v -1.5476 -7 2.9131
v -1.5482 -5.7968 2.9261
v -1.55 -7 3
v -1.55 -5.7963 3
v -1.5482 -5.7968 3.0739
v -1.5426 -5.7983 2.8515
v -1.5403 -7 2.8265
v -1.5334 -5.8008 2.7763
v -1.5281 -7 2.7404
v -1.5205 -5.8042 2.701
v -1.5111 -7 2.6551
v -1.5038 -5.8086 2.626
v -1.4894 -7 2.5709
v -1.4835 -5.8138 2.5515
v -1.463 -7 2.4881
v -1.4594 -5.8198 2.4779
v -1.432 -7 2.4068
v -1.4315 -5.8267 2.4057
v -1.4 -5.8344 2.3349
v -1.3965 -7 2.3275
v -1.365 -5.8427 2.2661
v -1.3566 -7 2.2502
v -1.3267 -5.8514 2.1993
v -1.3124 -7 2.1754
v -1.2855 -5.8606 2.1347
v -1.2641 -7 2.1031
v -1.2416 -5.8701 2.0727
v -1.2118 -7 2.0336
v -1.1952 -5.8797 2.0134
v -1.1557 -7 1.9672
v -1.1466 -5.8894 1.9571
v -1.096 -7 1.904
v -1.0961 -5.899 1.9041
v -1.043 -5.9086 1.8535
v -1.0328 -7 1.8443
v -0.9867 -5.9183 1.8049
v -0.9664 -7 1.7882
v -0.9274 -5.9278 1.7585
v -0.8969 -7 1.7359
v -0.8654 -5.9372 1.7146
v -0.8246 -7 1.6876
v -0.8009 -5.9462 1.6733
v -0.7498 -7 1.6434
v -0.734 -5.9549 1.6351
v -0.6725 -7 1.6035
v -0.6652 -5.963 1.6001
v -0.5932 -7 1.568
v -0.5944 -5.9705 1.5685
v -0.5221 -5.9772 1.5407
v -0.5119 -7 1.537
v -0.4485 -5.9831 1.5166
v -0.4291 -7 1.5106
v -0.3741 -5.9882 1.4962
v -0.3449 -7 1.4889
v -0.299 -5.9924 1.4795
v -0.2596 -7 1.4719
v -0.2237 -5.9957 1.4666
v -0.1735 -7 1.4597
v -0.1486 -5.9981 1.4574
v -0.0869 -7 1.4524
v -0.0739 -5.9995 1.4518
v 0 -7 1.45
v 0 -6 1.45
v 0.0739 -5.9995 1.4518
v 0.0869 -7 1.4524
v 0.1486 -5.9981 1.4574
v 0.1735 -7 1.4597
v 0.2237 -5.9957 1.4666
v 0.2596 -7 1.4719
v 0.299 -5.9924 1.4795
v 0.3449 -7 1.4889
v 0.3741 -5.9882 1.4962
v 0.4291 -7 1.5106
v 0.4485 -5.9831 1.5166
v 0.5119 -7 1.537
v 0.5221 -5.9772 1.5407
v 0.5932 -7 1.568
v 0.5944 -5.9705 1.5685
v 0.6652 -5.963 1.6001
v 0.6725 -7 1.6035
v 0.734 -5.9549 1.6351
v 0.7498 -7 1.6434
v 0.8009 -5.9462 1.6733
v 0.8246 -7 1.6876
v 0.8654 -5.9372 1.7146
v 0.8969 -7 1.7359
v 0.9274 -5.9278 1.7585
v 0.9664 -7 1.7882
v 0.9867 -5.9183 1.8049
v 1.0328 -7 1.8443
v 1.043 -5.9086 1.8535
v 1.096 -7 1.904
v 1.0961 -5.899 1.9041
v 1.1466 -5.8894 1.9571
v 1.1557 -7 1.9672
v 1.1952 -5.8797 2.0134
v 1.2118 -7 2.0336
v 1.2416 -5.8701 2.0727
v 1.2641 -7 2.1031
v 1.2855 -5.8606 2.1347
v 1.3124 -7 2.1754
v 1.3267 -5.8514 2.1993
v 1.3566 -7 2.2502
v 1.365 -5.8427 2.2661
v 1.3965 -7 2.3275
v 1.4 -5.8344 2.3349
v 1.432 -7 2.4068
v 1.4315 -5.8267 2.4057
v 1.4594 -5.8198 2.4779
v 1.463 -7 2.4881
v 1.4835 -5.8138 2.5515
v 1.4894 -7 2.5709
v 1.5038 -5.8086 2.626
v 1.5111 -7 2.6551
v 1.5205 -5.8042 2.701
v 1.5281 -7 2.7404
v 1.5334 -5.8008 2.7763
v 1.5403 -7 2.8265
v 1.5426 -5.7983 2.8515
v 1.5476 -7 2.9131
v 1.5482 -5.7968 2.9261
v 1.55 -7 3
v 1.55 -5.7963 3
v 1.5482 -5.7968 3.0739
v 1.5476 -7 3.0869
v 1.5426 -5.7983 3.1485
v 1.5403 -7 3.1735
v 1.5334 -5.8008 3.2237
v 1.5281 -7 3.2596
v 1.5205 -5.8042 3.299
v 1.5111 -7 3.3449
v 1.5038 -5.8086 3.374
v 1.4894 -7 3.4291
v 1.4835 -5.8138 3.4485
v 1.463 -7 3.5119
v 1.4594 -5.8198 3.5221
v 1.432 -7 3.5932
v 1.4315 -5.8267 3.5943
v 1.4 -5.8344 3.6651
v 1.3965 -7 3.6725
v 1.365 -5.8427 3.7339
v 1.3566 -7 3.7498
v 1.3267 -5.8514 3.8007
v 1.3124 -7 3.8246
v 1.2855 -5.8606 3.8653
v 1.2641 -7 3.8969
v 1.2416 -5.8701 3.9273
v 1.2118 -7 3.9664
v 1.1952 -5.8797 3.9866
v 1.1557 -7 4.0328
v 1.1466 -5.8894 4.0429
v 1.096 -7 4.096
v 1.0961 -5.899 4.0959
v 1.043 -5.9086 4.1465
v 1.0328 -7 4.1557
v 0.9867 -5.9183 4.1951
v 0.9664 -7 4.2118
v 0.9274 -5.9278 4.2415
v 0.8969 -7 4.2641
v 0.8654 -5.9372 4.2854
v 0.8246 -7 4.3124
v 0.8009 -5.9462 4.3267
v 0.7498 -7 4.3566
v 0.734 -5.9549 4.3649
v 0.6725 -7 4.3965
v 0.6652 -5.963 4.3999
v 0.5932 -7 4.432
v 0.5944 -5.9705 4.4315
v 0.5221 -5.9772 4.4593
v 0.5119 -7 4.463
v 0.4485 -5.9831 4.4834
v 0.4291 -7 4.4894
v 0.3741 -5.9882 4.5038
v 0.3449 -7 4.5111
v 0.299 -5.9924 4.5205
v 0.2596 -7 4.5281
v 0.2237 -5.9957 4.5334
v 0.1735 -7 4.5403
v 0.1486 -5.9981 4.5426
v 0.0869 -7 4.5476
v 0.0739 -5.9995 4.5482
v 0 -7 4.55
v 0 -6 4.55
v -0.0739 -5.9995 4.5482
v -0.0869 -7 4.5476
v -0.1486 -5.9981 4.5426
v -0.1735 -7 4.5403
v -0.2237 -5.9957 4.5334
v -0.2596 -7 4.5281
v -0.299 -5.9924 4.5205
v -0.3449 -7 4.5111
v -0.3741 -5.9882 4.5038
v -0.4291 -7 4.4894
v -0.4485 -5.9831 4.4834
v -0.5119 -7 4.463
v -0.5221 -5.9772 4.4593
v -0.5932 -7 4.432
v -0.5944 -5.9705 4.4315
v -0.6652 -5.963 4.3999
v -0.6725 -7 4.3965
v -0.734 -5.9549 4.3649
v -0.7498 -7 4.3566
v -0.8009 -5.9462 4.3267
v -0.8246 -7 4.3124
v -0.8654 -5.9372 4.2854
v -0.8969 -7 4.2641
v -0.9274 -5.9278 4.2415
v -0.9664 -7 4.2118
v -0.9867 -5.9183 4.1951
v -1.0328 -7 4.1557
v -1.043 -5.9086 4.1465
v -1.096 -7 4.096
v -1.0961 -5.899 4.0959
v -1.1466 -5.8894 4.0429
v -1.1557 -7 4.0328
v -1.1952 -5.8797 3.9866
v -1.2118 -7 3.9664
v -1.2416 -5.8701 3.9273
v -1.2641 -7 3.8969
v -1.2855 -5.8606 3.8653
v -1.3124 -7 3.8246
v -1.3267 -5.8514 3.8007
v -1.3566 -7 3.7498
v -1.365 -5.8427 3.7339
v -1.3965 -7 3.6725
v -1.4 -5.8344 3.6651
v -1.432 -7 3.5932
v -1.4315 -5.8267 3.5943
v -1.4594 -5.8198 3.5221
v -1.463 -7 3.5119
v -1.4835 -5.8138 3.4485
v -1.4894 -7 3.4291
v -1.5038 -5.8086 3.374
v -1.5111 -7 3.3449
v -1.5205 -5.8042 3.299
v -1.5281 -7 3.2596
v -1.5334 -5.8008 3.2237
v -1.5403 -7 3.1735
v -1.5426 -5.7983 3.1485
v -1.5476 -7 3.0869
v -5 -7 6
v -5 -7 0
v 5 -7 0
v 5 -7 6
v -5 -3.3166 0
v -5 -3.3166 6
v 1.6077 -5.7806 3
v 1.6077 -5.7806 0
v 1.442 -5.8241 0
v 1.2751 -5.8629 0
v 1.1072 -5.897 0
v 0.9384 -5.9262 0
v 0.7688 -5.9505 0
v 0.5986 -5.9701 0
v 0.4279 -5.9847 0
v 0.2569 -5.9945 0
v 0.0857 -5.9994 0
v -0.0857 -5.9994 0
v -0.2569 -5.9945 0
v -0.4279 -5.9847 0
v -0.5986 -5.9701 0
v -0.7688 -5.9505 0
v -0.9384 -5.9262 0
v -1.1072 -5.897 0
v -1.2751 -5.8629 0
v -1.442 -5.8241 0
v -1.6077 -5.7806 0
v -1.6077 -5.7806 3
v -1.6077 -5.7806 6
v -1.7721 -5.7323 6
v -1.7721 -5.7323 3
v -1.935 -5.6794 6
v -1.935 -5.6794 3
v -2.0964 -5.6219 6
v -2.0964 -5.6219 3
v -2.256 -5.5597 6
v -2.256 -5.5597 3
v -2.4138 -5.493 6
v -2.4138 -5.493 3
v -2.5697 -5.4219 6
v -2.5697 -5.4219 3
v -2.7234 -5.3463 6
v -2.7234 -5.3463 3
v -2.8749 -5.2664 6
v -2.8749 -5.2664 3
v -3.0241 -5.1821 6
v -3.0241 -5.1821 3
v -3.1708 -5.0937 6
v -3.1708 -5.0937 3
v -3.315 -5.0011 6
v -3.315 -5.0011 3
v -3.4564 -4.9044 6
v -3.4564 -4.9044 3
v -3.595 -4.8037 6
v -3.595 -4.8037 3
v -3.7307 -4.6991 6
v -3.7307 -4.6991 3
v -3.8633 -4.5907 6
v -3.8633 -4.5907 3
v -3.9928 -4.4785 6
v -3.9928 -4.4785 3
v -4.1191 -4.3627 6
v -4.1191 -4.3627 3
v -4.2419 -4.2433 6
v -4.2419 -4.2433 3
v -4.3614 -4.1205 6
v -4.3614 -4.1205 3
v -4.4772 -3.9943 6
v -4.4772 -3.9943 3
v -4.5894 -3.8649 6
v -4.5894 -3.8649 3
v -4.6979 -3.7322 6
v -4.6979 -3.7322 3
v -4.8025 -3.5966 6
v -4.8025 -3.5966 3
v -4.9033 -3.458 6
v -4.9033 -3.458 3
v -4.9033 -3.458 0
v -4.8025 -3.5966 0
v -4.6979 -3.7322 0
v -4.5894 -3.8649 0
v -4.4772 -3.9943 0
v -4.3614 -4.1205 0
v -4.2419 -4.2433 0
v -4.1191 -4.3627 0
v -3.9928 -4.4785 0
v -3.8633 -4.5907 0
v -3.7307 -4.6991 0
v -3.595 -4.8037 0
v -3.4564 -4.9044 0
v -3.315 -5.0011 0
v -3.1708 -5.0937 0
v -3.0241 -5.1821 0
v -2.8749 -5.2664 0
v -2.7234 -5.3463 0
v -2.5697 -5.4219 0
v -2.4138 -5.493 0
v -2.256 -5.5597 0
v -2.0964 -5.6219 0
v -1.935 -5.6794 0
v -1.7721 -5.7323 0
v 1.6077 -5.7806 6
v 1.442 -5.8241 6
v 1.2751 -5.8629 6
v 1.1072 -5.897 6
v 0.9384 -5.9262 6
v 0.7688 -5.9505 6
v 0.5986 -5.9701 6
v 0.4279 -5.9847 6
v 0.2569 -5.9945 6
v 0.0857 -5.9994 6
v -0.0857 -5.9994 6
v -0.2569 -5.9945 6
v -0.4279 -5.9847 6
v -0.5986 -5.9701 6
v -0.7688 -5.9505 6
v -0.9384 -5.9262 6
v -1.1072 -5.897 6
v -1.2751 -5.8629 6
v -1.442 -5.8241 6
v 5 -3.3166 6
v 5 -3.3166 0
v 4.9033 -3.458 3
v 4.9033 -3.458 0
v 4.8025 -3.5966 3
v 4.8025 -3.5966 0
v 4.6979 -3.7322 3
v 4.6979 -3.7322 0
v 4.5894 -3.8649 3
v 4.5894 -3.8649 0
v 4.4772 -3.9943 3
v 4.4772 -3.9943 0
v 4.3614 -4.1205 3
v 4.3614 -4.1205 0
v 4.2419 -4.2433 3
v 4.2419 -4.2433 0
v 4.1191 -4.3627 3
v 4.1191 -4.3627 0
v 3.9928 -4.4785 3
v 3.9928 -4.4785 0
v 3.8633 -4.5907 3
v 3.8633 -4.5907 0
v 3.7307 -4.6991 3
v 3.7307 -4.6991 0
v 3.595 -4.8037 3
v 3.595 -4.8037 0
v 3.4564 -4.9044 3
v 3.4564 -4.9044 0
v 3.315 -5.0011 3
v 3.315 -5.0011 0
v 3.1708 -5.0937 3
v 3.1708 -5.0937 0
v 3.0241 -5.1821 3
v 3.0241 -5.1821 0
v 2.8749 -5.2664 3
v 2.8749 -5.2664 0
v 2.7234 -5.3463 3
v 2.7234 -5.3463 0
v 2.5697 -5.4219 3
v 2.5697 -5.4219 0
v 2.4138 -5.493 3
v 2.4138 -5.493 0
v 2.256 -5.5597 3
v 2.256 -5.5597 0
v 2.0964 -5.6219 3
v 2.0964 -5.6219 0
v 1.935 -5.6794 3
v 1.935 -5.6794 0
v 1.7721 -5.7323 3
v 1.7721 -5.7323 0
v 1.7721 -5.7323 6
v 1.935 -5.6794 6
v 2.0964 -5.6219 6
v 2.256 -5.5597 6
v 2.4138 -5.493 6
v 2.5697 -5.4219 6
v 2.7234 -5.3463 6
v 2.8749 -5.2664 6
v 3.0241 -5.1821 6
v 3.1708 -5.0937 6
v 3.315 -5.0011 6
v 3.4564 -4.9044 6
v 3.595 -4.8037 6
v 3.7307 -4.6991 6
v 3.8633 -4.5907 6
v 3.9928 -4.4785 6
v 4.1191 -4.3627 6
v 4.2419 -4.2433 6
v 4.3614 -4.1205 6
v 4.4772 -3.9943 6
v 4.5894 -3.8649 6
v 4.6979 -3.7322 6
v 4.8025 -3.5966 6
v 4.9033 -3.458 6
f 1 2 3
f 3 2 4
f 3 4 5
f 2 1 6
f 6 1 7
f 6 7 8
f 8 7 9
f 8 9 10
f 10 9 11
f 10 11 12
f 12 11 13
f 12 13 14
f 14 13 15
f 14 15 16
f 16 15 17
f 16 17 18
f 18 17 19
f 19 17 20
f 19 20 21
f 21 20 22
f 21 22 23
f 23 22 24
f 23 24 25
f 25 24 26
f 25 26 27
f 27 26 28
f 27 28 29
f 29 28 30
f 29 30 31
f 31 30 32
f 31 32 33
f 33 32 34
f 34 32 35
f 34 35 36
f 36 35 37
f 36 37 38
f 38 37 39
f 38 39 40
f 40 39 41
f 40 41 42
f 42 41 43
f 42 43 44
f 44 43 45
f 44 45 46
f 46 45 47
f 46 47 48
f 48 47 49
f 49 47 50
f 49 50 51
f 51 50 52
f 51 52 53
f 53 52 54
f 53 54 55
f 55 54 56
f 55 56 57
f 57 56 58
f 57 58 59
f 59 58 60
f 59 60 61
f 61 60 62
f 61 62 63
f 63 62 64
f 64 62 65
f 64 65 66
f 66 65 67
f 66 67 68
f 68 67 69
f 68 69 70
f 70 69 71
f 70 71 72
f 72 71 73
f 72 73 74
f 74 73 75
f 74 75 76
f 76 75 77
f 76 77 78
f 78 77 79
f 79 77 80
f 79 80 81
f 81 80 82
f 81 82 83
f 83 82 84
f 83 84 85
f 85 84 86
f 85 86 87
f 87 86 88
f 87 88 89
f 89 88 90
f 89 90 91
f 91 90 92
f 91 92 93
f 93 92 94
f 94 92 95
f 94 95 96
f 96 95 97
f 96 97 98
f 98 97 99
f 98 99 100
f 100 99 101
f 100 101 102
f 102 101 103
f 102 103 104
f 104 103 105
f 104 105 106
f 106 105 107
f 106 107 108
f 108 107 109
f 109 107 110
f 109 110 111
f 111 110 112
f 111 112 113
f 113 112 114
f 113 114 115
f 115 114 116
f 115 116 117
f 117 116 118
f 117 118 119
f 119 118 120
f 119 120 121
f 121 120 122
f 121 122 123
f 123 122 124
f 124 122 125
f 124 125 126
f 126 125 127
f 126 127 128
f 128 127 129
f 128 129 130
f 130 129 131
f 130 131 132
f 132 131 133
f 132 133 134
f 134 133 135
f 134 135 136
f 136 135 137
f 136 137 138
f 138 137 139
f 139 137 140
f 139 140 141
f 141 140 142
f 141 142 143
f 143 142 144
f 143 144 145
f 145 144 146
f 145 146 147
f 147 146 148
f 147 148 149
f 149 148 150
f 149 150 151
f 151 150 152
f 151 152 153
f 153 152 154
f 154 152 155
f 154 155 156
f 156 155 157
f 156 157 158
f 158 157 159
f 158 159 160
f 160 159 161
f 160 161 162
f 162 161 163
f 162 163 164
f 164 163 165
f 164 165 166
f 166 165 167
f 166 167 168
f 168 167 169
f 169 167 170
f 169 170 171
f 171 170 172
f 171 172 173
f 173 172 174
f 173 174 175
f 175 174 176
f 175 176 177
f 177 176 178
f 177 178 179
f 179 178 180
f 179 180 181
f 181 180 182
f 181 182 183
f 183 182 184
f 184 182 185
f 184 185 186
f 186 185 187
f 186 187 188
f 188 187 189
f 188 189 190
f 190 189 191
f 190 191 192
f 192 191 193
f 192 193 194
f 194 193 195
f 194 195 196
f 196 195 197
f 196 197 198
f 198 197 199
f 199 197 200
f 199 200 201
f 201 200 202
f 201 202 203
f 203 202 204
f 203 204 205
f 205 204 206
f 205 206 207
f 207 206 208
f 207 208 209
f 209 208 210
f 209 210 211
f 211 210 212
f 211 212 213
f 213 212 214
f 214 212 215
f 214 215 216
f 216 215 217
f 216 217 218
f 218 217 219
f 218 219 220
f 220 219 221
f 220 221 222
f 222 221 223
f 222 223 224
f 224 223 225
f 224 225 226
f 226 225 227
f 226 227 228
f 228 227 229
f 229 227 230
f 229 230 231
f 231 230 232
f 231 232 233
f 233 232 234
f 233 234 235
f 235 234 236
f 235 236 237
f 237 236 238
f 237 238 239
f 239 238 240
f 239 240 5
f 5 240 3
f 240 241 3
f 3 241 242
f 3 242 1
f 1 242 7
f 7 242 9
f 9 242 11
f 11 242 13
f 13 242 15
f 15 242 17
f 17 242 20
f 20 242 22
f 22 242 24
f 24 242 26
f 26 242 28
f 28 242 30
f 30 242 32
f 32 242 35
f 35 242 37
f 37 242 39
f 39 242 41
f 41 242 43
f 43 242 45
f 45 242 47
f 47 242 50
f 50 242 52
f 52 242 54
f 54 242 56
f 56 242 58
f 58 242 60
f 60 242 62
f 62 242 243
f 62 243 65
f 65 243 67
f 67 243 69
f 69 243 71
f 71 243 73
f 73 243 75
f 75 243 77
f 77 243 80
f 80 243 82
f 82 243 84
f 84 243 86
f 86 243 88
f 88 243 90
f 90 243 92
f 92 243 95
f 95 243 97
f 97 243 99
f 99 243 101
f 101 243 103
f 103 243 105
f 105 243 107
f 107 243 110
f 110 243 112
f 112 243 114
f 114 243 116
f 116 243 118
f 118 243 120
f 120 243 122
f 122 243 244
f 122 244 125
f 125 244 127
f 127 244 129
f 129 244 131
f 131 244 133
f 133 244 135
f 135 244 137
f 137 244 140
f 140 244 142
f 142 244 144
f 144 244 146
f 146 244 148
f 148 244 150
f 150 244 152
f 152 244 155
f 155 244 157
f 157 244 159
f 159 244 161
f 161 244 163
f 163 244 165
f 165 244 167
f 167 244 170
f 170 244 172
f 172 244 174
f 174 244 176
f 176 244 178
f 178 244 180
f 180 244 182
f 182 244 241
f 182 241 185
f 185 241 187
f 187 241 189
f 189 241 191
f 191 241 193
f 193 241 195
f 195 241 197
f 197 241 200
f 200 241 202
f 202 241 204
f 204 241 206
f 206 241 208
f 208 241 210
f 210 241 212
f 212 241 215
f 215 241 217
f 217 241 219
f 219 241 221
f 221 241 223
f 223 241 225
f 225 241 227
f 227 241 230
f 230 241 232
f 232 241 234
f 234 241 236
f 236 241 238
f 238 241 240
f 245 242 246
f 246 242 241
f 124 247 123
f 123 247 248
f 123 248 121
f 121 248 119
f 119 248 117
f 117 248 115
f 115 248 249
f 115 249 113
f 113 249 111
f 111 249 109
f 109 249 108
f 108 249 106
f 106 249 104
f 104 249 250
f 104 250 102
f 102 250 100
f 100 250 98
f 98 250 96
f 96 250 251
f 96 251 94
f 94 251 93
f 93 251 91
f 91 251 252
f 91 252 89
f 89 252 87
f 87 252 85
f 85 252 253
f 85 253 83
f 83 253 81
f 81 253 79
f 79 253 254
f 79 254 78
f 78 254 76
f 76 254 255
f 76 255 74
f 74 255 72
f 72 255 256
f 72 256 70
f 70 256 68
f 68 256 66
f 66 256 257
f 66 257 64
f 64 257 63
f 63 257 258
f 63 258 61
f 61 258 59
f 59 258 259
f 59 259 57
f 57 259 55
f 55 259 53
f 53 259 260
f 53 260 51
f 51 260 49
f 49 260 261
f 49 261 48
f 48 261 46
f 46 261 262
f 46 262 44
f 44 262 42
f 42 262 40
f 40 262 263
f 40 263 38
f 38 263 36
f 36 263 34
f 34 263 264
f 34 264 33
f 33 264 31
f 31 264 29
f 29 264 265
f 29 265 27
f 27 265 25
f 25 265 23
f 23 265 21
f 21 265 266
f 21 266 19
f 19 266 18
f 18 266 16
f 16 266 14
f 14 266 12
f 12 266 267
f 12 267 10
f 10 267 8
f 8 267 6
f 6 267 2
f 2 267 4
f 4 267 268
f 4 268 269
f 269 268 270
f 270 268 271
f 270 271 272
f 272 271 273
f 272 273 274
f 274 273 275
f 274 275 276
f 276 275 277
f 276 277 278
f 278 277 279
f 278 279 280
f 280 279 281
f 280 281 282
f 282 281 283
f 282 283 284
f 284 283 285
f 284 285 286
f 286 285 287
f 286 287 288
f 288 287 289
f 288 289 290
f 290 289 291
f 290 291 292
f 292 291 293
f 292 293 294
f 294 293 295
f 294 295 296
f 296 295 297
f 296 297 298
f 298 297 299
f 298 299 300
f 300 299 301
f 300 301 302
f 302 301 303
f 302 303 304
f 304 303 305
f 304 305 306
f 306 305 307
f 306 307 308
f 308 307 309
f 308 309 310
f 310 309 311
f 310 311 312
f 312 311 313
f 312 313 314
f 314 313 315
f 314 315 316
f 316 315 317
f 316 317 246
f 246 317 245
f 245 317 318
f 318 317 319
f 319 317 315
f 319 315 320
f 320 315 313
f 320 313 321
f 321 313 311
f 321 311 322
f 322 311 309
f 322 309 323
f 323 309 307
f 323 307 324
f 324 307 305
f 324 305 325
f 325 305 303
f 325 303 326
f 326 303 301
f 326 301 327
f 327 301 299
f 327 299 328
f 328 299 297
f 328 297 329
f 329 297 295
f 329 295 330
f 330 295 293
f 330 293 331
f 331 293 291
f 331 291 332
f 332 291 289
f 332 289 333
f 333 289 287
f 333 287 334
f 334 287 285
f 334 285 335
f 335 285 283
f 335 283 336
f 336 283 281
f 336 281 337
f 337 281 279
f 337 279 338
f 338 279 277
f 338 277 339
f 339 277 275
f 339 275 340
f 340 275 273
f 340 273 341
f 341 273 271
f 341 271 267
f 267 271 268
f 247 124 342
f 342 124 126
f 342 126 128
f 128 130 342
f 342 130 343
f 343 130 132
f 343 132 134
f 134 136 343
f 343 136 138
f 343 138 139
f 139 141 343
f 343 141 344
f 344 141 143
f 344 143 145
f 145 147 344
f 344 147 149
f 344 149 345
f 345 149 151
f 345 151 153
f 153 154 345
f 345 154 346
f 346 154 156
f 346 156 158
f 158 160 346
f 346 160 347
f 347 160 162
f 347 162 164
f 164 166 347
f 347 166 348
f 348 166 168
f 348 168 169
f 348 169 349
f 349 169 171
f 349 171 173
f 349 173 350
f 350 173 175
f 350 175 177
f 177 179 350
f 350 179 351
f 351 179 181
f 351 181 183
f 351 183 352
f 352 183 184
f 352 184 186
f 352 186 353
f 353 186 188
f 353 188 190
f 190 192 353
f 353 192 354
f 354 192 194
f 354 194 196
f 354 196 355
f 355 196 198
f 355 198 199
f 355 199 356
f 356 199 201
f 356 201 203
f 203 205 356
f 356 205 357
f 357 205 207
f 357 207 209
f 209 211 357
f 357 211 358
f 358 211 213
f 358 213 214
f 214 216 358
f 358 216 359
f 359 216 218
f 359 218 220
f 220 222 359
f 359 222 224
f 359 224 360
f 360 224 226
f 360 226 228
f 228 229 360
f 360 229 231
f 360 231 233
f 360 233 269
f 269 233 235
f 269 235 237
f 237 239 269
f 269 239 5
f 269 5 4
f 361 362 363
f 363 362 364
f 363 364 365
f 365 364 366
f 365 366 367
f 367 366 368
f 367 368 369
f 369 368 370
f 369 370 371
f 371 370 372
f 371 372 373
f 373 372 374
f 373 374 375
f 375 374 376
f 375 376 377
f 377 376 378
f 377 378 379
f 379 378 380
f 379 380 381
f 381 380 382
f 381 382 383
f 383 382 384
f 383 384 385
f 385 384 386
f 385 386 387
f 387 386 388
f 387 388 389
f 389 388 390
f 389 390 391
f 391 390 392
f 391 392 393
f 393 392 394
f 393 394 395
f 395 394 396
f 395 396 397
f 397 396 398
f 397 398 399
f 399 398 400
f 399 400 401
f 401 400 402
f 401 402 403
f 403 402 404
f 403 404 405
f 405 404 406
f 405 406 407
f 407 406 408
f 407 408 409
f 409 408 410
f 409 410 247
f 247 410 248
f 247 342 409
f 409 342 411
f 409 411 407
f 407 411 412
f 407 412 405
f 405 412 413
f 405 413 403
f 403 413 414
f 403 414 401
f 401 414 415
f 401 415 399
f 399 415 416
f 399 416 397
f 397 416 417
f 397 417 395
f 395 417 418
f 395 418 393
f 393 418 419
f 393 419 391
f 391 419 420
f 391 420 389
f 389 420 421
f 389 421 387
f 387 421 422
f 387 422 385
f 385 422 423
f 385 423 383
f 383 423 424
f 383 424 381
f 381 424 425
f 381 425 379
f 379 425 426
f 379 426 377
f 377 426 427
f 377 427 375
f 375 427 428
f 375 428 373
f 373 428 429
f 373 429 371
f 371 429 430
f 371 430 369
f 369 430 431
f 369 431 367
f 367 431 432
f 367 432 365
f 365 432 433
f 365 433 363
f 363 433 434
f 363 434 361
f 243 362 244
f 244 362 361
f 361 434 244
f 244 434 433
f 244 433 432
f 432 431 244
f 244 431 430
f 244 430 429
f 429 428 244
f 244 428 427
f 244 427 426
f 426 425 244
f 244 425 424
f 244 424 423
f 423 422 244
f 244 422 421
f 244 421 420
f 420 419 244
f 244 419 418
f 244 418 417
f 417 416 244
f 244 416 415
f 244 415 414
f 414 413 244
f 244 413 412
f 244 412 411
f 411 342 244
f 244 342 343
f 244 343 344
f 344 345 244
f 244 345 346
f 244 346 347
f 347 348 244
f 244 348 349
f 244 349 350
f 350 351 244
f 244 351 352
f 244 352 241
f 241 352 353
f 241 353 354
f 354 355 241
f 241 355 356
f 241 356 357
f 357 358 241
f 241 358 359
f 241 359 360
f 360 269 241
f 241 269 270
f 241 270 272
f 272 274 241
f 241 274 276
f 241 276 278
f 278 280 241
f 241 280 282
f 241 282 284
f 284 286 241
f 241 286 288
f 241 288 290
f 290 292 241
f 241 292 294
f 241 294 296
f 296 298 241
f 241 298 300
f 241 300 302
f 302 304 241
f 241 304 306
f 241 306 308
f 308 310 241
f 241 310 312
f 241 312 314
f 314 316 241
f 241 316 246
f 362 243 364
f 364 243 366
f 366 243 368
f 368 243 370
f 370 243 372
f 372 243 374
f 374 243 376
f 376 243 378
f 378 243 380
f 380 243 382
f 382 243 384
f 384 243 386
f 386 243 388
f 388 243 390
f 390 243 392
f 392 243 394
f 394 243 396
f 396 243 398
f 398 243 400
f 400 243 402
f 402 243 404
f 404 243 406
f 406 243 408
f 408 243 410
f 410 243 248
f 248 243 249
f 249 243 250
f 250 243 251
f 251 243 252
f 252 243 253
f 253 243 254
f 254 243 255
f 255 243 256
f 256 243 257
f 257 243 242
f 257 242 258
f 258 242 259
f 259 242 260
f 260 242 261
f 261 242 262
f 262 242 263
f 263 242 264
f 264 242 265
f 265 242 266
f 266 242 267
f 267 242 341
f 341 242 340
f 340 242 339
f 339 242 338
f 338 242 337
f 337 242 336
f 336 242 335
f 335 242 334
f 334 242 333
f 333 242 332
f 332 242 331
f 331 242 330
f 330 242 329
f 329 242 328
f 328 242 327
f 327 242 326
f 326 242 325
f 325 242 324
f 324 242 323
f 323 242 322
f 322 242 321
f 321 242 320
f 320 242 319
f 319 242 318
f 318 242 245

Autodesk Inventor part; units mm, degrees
ref_plane "YZ Plane" through (0, 0, 0) normal (1, 0, 0) x (0, 1, 0)
ref_plane "XZ Plane" through (0, 0, 0) normal (0, 1, 0) x (-1, 0, 0)
ref_plane "XY Plane" through (0, 0, 0) normal (0, 0, 1) x (1, 0, 0)
sketch "Sketch1" plane through (0, 0, 0) normal (0, 0, 1) x (1, 0, 0)
  circle A0 centre (0, 0) radius 6
  line L0 (-5, 0) -> (5, 0)
  line L1 (5, 0) -> (5, -7)
  line L2 (5, -7) -> (-5, -7)
  line L3 (-5, -7) -> (-5, 0)
  point P0 (5, -3.3166)
  point P1 (-5, -3.3166)
  dimension "d0" = 12
  dimension "d1" = 1
  dimension "d2" = 5
  dimension "d3" = 5
extrude "Extrusion1" add sketch "Sketch1" along normal blind 6 contours A0 L1 L2 L3
sketch "Sketch2" plane through (-5, -7, 0) normal (0, -1, 0) x (1, 0, 0)
  line L0 (0, 0) -> (10, 0) projected
  line L1 (10, 0) -> (10, 6) projected
  line L2 (0, 6) -> (10, 6) projected
  line L3 (0, 0) -> (0, 6) projected
  line L4 (0, 6) -> (10, 6) construction
  line L5 (10, 0) -> (0, 6) construction
  line L6 (0, 0) -> (10, 0) construction
  line L7 (10, 6) -> (0, 0) construction
  circle A0 centre (5, 3) radius 1.55
  point P0 (5, 0)
  dimension "d6" = 3.1
extrude "Extrusion2" cut sketch "Sketch2" along normal mid plane 6 contours A0
properties part number "Tube_adaptor_2"
